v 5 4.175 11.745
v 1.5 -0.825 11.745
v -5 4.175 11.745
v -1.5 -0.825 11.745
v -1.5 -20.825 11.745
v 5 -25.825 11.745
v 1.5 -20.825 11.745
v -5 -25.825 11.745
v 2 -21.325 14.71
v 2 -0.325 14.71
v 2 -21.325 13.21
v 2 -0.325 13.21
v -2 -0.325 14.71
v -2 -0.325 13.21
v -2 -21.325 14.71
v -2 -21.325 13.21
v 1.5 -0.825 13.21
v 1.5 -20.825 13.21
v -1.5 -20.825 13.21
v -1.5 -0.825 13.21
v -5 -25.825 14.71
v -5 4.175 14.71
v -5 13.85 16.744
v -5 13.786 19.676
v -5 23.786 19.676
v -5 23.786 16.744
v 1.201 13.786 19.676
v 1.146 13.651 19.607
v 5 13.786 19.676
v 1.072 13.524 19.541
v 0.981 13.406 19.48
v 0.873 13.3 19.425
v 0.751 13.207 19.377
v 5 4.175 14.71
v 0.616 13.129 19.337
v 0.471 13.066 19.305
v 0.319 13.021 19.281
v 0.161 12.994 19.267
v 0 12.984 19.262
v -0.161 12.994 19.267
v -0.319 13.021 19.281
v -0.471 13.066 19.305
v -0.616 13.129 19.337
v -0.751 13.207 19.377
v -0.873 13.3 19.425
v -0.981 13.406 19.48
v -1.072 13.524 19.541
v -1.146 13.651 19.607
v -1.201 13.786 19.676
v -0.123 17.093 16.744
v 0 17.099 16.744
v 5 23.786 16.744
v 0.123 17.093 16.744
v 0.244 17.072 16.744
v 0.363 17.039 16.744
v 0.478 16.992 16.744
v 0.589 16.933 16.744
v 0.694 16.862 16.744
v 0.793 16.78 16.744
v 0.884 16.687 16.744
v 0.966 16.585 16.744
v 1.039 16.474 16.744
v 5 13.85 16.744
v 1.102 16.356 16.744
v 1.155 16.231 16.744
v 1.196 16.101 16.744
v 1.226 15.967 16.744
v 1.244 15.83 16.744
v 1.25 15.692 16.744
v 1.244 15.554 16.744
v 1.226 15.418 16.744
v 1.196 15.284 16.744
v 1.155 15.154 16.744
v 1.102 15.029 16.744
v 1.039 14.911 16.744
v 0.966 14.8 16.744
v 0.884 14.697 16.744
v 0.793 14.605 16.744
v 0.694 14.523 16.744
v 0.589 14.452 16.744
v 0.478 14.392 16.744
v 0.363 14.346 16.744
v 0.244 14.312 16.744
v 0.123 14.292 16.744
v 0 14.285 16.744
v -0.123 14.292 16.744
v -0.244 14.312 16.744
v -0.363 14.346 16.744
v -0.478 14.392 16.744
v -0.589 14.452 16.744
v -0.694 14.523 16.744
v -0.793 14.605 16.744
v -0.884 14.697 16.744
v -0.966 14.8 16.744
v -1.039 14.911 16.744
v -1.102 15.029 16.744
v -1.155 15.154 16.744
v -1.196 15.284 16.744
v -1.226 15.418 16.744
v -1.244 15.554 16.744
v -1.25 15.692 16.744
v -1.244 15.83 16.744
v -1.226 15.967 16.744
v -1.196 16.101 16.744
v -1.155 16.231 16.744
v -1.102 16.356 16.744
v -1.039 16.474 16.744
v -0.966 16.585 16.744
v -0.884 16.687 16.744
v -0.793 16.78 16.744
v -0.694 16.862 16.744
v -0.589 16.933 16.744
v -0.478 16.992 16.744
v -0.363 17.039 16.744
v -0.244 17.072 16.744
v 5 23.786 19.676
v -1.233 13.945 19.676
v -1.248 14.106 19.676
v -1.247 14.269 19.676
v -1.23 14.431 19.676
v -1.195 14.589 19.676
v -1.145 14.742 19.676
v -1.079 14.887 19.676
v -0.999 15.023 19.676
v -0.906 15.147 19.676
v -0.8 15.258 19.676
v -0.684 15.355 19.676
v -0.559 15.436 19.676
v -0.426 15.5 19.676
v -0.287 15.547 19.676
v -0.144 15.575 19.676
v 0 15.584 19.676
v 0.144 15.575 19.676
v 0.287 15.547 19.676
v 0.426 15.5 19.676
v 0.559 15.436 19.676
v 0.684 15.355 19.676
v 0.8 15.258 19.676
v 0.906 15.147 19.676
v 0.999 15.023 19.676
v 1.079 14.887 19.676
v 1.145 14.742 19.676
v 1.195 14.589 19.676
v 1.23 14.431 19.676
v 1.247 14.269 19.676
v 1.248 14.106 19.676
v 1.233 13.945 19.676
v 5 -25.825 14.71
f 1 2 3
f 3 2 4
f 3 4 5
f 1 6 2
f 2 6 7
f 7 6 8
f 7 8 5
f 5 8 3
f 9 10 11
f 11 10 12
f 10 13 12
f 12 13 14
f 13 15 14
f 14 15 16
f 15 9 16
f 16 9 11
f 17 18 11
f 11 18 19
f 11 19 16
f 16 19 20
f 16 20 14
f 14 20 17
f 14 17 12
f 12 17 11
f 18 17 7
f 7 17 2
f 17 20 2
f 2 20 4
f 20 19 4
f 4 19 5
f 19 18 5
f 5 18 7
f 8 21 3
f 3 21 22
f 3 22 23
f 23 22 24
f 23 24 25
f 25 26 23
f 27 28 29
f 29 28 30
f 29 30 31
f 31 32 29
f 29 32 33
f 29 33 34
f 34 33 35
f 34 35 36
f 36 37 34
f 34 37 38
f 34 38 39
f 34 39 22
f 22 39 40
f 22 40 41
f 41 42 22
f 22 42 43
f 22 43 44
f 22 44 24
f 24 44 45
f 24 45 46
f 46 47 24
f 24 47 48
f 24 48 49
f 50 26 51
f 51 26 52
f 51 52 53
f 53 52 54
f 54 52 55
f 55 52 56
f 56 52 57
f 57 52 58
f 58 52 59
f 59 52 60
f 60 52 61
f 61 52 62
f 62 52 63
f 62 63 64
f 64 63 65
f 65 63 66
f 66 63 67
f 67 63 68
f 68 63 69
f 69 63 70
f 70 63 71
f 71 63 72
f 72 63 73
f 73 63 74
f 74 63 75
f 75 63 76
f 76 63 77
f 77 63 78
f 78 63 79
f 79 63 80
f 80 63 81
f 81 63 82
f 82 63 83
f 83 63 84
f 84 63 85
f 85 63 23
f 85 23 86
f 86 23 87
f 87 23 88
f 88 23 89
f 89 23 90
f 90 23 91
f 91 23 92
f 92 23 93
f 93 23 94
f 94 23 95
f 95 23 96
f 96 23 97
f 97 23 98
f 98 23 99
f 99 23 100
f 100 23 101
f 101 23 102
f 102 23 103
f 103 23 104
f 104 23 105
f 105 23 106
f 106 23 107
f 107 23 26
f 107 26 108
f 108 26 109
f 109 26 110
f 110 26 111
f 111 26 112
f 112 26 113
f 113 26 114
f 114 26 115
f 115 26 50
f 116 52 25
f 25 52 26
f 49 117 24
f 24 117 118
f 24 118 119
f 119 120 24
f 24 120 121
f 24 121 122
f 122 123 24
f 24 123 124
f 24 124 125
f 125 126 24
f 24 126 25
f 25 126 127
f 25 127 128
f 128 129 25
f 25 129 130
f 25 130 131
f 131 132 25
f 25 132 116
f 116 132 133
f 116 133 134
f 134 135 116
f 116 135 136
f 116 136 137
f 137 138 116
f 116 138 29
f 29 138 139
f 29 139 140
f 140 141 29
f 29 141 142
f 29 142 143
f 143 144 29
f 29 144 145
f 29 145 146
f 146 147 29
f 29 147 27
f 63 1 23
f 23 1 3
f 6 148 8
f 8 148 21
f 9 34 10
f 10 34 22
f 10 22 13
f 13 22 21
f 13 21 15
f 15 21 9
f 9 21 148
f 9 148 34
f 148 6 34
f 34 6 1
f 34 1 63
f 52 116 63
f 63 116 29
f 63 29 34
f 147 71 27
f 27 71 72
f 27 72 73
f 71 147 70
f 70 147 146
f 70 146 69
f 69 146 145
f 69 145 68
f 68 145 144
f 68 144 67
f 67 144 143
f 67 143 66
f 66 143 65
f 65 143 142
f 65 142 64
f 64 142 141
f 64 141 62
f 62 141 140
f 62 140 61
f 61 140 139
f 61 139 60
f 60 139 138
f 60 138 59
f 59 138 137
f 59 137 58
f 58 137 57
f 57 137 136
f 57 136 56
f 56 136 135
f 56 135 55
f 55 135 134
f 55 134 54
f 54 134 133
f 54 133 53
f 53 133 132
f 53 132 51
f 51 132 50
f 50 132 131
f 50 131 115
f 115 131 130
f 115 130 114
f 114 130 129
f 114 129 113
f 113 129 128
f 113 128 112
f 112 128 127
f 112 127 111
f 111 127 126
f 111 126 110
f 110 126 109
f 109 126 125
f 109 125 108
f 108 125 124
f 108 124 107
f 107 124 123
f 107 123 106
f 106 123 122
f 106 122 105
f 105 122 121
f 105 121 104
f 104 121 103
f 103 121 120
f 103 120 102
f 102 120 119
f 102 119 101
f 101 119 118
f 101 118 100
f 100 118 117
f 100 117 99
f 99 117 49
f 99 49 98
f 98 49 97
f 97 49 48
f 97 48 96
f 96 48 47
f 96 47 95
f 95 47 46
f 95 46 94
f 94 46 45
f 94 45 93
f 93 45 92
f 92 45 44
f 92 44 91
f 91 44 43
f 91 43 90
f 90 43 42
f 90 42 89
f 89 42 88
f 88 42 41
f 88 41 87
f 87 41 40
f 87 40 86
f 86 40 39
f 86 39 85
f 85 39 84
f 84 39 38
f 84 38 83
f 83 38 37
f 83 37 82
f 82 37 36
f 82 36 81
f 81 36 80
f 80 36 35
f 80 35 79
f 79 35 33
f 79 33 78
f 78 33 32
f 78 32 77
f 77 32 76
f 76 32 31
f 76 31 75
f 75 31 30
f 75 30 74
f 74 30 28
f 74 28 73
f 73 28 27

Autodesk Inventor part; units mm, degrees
ref_plane "YZ Plane" through (0, 0, 0) normal (1, 0, 0) x (0, 1, 0)
ref_plane "XZ Plane" through (0, 0, 0) normal (0, 1, 0) x (-1, 0, 0)
ref_plane "XY Plane" through (0, 0, 0) normal (0, 0, 1) x (1, 0, 0)
sketch "Эскиз1" plane through (0, 0, 0) normal (1, 0, 0) x (0, 1, 0)
  line L0 (13.9581, 11.7453) -> (25.9581, 11.7453)
  line L1 (25.9581, 11.7453) -> (25.9581, 13.7453)
  line L2 (25.9581, 13.7453) -> (13.9581, 13.7453)
  line L3 (13.9581, 13.7453) -> (13.9581, 11.7453)
  line L4 (13.9581, 11.7453) -> (13.9581, -21.2547)
  line L5 (13.9581, -21.2547) -> (25.9581, -21.2547)
  line L6 (25.9581, -21.2547) -> (25.9581, 11.7453)
  line L7 (13.9581, 11.7453) -> (13.9581, 7.7453)
  line L8 (13.9581, 7.7453) -> (25.9581, 7.7453)
  line L9 (-6.8518, -18.2547) -> (-6.8518, 11.7453)
  line L10 (-6.8518, 11.7453) -> (-15.825, 11.7453)
  line L11 (-15.825, 11.7453) -> (-15.825, 14.7104)
  line L12 (-15.825, 14.7104) -> (-5.825, 14.7104)
  line L13 (-5.825, 14.7104) -> (-5.825, 11.7453)
  line L14 (-15.825, 14.7104) -> (-25.825, 14.7104)
  line L15 (-25.825, 14.7104) -> (-25.825, 11.7453)
  line L16 (-15.825, 11.7453) -> (-25.825, 11.7453)
  line L17 (-5.825, 14.7104) -> (4.175, 14.7104)
  line L18 (4.175, 14.7104) -> (4.175, 11.7453)
  line L19 (13.9581, 7.7453) -> (23.1232, 11.7453)
  line L20 (23.1232, 11.7453) -> (18.5407, 9.7453)
  line L21 (18.5407, 9.7453) -> (19.9154, 10.3453)
  line L22 (18.5407, 9.7453) -> (17.1659, 9.1453)
  line L23 (19.9154, 10.3453) -> (15.1154, 21.3434)
  line L24 (17.1659, 9.1453) -> (12.3659, 20.1434)
  line L25 (12.3659, 20.1434) -> (15.1154, 21.3434)
  line L26 (13.9581, 11.7453) -> (13.8495, 16.7441)
  line L27 (13.8495, 16.7441) -> (4.175, 11.7453)
  line L28 (4.175, 14.7104) -> (13.7858, 19.6763)
  line L29 (13.7858, 19.6763) -> (23.7858, 19.6763)
  line L30 (23.7858, 19.6763) -> (23.7858, 16.7441)
  line L31 (23.7858, 16.7441) -> (13.8495, 16.7441)
  line L32 (4.175, 11.7453) -> (-5.825, 11.7453)
  line L33 (-5.825, 11.7453) -> (-6.8518, 11.7453)
  point P0 (0, 0)
  dimension "d0" = 12
  dimension "d1" = 2
  dimension "d2" = 33
  dimension "d3" = 4
  dimension "d4" = 10
  dimension "d5" = 10
  dimension "d6" = 10
  dimension "d7" = 10
  dimension "d8" = 1.5
  dimension "d9" = 1.5
  dimension "d10" = 12
  dimension "d11" = 12
  dimension "d12" = 5
  dimension "d13" = 10
extrude "Выдавливание1" add sketch "Эскиз1" along normal blind 5 and the other way blind 5 contours L31 L24 L28 L29 L23 | L23 L29 L30 L31 | L27 L18 L28 L24 | L32 L13 L17 L18 | L33 L10 L11 L12 L13 | L11 L16 L15 L14
sketch "Эскиз2" plane through (-5, 4.175, 14.7104) normal (0, -0.459, 0.8884) x (1, 0, 0)
  line L0 (5, 9.6975) -> (5, 12.6658)
  line L1 (5, 12.6658) -> (5, 11.1658)
  circle A0 centre (5, 11.1658) radius 1.25
  point P0 (5, -10.4618)
  dimension "d18" = 1.5
  dimension "d19" = 2.5
sketch "Эскиз3" plane through (-5, -25.825, 14.7104) normal (0, 0, 1) x (1, 0, 0)
  line L0 (0, 0) -> (10, 0) projected
  line L1 (5, 0) -> (5, 10)
  line L2 (5, 10) -> (0, 10)
  line L3 (0, 10) -> (0, 20)
  line L4 (0, 20) -> (10, 20)
  line L5 (10, 20) -> (10, 10)
  line L6 (10, 30) -> (10, 0) projected
  line L7 (5, 10) -> (10, 10)
  line L8 (5, 10) -> (3.5, 10)
  line L9 (3.5, 10) -> (3.5, 20)
  line L10 (3.5, 20) -> (3.5, 25)
  line L11 (3.5, 25) -> (6.5, 25)
  line L12 (6.5, 25) -> (6.5, 5)
  line L13 (6.5, 5) -> (3.5, 5)
  line L14 (3.5, 5) -> (3.5, 10)
  line L15 (5, 10) -> (7, 10)
  line L16 (7, 10) -> (7, 4.5)
  line L17 (7, 4.5) -> (3, 4.5)
  line L18 (3, 4.5) -> (3, 25.5)
  line L19 (3, 25.5) -> (7, 25.5)
  line L20 (7, 25.5) -> (7, 10)
  line L21 (7, 10) -> (7, 4.5)
  line L22 (7, 4.5) -> (5, 4.5)
  line L23 (5, 4.5) -> (5, 10)
  line L24 (6.5, 10) -> (5, 10)
  line L25 (5, 10) -> (5, 5)
  line L26 (5, 5) -> (6.5, 5)
  line L27 (6.5, 5) -> (6.5, 10)
  point P0 (5, 25.825)
  point P1 (5, 5)
  point P2 (5, 5)
  dimension "d22" = 10
  dimension "d23" = 10
  dimension "d24" = 1.5
  dimension "d25" = 5
  dimension "d26" = 3
  dimension "d27" = 20
  dimension "d28" = 2
  dimension "d29" = 5.5
  dimension "d30" = 4
  dimension "d31" = 21
extrude "Выдавливание3" cut sketch "Эскиз3" against normal blind 5 contours L13 L14 L2 L1 | L2 L9 L4 L12 L7 | L4 L10 L11 L12
extrude "Выдавливание4" cut sketch "Эскиз3" against normal blind 1.5 contours L17 L18 L2 L14 L13 L1 | L1 L13 L12 L7 L16 L17 | L1 L7 L12 L13 | L7 L12 L4 L20 | L18 L4 L9 L2 | L4 L12 L11 L10 L18 L19 L20
extrude "Выдавливание5" cut sketch "Эскиз3" against normal blind 3 contours L1 L7 L12 L13
extrude "Выдавливание6" cut sketch "Эскиз2" against normal blind 10
properties part number "micro_wheel_mount"
